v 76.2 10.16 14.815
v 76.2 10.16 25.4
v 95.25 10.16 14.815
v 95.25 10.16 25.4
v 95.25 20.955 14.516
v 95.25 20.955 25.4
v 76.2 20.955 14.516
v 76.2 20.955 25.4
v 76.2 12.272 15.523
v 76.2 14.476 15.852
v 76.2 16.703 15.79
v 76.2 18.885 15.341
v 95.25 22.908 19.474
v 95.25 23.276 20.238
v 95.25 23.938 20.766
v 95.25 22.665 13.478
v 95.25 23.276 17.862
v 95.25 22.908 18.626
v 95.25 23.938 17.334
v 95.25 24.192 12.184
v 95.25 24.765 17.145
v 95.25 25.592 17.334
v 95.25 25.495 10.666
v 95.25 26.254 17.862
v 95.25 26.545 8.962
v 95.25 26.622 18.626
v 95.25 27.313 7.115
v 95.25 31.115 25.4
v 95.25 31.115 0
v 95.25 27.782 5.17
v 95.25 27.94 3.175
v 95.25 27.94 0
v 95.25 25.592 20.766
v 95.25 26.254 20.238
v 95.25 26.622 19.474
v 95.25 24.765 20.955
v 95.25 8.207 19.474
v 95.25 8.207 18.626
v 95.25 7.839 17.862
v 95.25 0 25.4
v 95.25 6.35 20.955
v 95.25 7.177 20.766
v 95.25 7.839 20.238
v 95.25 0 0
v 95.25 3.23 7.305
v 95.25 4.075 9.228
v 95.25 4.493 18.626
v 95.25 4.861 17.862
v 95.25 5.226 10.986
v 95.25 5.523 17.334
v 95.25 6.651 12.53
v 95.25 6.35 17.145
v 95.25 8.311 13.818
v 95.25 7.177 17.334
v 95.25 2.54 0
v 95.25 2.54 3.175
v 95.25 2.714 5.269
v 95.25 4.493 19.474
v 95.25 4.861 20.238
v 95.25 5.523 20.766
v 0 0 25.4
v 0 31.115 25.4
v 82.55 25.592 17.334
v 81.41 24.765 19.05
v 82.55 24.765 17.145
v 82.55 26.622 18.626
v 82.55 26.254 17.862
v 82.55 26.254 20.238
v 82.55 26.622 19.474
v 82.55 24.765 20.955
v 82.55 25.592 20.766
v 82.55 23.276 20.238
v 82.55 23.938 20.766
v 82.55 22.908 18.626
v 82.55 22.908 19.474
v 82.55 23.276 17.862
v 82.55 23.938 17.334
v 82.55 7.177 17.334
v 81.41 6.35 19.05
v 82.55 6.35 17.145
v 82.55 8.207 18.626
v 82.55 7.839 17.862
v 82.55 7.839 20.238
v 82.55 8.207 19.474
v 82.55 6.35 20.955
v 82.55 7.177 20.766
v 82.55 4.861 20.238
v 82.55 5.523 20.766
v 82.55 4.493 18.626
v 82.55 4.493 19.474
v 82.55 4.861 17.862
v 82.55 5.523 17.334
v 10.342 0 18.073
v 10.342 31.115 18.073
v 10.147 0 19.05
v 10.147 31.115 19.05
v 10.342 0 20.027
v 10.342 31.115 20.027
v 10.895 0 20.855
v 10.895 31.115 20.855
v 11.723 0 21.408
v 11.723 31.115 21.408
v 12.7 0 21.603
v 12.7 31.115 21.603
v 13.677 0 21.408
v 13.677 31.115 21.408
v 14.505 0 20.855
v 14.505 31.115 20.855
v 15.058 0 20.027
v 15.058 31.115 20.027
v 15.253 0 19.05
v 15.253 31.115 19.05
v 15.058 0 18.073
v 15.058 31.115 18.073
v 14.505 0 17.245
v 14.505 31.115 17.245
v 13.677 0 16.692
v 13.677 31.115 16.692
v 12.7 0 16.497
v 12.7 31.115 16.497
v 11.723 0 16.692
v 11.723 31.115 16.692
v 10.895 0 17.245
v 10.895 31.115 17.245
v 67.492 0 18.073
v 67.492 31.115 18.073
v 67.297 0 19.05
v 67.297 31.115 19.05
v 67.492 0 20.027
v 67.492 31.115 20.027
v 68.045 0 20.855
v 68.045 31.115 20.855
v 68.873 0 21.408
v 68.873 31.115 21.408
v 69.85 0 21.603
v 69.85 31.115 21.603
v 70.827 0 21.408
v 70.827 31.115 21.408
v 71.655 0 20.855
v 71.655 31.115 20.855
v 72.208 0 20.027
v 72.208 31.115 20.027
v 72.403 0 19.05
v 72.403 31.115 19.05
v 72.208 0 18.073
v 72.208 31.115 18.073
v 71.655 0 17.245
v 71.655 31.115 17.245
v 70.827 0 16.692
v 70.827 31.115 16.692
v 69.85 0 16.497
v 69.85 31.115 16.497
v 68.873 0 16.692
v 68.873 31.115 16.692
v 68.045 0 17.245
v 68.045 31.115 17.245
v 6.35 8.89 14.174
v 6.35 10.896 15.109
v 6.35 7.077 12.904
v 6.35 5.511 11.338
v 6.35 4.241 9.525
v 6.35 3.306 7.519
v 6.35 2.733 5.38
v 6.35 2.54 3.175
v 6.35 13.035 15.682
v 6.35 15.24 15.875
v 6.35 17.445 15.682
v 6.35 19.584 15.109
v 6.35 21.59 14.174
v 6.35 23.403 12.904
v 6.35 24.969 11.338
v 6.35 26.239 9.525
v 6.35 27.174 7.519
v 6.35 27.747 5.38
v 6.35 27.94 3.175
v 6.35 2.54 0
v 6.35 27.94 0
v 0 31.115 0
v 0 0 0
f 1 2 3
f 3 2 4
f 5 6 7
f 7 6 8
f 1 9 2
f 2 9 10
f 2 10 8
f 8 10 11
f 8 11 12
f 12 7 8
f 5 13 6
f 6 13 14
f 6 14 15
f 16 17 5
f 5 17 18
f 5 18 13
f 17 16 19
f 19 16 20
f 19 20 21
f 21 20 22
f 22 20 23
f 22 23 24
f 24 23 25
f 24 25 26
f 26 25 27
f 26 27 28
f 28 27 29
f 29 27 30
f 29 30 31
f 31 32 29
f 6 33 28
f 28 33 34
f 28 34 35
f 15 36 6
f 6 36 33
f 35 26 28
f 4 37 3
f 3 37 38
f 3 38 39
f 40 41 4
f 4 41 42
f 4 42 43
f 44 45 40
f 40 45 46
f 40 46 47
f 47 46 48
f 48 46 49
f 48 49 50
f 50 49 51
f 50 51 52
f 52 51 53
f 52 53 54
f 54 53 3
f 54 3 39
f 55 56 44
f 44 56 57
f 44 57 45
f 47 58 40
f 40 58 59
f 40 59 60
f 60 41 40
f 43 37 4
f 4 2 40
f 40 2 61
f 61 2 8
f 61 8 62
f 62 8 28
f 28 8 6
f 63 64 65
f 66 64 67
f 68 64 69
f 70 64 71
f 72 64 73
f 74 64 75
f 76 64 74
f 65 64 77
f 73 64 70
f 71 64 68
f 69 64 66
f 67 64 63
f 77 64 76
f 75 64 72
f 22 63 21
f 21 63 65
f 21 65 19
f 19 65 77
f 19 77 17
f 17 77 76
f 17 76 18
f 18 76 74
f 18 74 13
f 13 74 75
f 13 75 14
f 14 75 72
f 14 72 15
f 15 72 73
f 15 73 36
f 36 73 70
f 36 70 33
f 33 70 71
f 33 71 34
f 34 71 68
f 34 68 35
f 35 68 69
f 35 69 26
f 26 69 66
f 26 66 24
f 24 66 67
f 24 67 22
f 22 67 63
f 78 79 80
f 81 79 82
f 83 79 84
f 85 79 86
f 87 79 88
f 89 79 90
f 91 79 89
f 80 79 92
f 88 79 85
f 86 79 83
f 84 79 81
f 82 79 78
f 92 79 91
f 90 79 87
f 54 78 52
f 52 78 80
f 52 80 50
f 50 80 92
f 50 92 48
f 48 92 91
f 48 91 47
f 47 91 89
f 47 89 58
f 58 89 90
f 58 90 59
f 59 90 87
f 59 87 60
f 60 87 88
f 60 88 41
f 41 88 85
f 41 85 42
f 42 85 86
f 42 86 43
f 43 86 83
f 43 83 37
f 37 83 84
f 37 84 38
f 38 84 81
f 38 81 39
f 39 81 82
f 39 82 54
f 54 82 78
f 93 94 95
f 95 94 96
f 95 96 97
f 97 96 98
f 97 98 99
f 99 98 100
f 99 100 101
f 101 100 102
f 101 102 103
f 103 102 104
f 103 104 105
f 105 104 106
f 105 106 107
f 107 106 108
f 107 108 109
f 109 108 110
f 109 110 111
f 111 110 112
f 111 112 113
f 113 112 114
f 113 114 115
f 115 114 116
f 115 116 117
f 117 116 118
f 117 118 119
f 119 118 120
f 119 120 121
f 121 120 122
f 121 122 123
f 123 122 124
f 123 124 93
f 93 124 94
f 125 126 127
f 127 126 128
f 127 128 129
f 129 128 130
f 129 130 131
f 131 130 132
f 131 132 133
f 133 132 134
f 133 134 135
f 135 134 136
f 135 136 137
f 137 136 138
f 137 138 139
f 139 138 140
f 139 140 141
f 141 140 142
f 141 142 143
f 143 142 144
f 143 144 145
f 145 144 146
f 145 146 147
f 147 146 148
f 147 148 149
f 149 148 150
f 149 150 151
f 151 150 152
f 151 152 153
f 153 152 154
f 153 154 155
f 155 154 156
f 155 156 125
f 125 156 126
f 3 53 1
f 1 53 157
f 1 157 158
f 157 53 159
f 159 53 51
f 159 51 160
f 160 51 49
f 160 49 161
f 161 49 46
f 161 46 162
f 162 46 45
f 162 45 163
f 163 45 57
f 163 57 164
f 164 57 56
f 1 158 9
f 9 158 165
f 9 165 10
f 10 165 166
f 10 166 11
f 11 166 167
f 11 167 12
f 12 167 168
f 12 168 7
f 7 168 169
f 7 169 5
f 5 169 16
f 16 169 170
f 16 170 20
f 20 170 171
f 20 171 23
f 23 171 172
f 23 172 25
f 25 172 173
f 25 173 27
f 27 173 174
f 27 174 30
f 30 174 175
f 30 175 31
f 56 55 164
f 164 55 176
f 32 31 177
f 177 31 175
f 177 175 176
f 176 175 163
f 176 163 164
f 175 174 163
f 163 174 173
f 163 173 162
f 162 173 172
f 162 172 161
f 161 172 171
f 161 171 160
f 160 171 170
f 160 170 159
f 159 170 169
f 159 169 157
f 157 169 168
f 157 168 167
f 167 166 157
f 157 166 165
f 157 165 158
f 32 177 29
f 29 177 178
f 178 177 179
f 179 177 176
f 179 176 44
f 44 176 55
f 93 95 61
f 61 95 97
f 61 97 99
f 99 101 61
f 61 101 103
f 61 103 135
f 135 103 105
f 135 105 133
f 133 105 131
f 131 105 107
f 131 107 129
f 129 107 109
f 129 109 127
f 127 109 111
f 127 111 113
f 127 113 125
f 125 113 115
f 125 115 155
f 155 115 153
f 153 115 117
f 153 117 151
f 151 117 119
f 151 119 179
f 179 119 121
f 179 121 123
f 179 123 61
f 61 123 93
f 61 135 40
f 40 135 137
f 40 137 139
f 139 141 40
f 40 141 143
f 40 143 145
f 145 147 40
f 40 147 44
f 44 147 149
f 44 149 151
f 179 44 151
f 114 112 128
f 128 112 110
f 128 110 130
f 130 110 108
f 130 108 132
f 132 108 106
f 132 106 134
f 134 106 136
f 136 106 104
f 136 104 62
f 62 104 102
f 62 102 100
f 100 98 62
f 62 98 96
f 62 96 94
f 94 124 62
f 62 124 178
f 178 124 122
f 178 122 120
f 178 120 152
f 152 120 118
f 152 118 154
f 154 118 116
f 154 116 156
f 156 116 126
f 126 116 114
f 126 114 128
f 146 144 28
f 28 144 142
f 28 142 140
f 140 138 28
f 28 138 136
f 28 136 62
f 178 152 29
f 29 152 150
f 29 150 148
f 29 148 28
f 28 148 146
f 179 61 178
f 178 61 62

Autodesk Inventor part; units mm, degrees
ref_plane "YZ Plane" through (0, 0, 0) normal (1, 0, 0) x (0, 1, 0)
ref_plane "XZ Plane" through (0, 0, 0) normal (0, 1, 0) x (-1, 0, 0)
ref_plane "XY Plane" through (0, 0, 0) normal (0, 0, 1) x (1, 0, 0)
sketch "Sketch1" plane through (0, 0, 0) normal (1, 0, 0) x (0, 1, 0)
  line L0 (0, 0) -> (31.115, 0)
  line L1 (31.115, 0) -> (31.115, 25.4)
  line L2 (31.115, 25.4) -> (0, 25.4)
  line L3 (0, 25.4) -> (0, 0)
  dimension "d0" = 25.4
  dimension "d1" = 31.115
extrude "Extrusion1" add sketch "Sketch1" along normal blind 95.25
sketch "Sketch2" plane through (95.25, 0, 0) normal (1, 0, 0) x (0, 0, -1)
  arc A0 (-3.175, 27.94) -> (-3.175, 2.54) centre (-3.175, 15.24) ccw
  line L0 (0, 0) -> (0, 31.115) projected
  line L1 (-25.4, 0) -> (0, 0) projected
  line L2 (-3.175, 27.94) -> (0, 27.94)
  line L3 (-3.175, 2.54) -> (0, 2.54)
  dimension "d4" = 3.175
  dimension "d5" = 15.24
  dimension "d6" = 25.4
extrude "Extrusion2" cut sketch "Sketch2" against normal blind 88.9
sketch "Sketch3" plane through (0, 31.115, 25.4) normal (0, 1, 0) x (1, 0, 0)
  line L0 (0, 25.4) -> (0, 0) projected
  line L1 (95.25, 25.4) -> (95.25, 0) projected
  line L2 (0, 0) -> (95.25, 0) projected
  point P0 (12.7, 6.35)
  point P1 (69.85, 6.35)
  dimension "d9" = 0
  dimension "d10" = 12.7
  dimension "d12" = 6.35
  dimension "d35" = 69.85
hole "Hole1" at (12.7, 31.115, 19.05) at (69.85, 31.115, 19.05) direction (0, -1, 0) diameter 5.1054 end through all clearance for "Flat Head Machine Screw (82)" size "#10" standard "Ansi Unified Screw Threads"
sketch "Sketch5" plane through (95.25, 0, 0) normal (1, 0, 0) x (0, 0, -1)
  line L0 (-25.4, 31.115) -> (-25.4, 0) projected
  line L1 (-25.4, 0) -> (0, 0) projected
  line L2 (-25.4, 31.115) -> (-25.4, 0) projected
  line L3 (0, 31.115) -> (-25.4, 31.115) projected
  point P0 (-19.05, 24.765)
  point P1 (-19.05, 6.35)
  point P2 (-25.4, 10.16)
  point P3 (-25.4, 20.32)
  dimension "d24" = 6.35
  dimension "d25" = 6.35
  dimension "d26" = 6.35
  dimension "d27" = 6.35
hole "Hole2" at (95.25, 24.765, 19.05) at (95.25, 6.35, 19.05) direction (-1, 0, 0) diameter 3.81 depth 12.7 tip angle 118.188
sketch "Sketch6" plane through (95.25, 0, 0) normal (1, 0, 0) x (0, 0, -1)
  line L0 (-38.1122, 20.955) -> (-10.5779, 20.955)
  line L1 (-10.5779, 20.955) -> (-10.5779, 10.16)
  line L2 (-10.5779, 10.16) -> (-38.1122, 10.16)
  line L3 (-38.1122, 10.16) -> (-38.1122, 20.955)
  line L4 (-25.4, 0) -> (0, 0) projected
  line L5 (0, 31.115) -> (-25.4, 31.115) projected
  dimension "d36" = 10.16
  dimension "d37" = 10.16
extrude "Extrusion4" cut sketch "Sketch6" against normal blind 19.05
properties part number "BatteryRail"
